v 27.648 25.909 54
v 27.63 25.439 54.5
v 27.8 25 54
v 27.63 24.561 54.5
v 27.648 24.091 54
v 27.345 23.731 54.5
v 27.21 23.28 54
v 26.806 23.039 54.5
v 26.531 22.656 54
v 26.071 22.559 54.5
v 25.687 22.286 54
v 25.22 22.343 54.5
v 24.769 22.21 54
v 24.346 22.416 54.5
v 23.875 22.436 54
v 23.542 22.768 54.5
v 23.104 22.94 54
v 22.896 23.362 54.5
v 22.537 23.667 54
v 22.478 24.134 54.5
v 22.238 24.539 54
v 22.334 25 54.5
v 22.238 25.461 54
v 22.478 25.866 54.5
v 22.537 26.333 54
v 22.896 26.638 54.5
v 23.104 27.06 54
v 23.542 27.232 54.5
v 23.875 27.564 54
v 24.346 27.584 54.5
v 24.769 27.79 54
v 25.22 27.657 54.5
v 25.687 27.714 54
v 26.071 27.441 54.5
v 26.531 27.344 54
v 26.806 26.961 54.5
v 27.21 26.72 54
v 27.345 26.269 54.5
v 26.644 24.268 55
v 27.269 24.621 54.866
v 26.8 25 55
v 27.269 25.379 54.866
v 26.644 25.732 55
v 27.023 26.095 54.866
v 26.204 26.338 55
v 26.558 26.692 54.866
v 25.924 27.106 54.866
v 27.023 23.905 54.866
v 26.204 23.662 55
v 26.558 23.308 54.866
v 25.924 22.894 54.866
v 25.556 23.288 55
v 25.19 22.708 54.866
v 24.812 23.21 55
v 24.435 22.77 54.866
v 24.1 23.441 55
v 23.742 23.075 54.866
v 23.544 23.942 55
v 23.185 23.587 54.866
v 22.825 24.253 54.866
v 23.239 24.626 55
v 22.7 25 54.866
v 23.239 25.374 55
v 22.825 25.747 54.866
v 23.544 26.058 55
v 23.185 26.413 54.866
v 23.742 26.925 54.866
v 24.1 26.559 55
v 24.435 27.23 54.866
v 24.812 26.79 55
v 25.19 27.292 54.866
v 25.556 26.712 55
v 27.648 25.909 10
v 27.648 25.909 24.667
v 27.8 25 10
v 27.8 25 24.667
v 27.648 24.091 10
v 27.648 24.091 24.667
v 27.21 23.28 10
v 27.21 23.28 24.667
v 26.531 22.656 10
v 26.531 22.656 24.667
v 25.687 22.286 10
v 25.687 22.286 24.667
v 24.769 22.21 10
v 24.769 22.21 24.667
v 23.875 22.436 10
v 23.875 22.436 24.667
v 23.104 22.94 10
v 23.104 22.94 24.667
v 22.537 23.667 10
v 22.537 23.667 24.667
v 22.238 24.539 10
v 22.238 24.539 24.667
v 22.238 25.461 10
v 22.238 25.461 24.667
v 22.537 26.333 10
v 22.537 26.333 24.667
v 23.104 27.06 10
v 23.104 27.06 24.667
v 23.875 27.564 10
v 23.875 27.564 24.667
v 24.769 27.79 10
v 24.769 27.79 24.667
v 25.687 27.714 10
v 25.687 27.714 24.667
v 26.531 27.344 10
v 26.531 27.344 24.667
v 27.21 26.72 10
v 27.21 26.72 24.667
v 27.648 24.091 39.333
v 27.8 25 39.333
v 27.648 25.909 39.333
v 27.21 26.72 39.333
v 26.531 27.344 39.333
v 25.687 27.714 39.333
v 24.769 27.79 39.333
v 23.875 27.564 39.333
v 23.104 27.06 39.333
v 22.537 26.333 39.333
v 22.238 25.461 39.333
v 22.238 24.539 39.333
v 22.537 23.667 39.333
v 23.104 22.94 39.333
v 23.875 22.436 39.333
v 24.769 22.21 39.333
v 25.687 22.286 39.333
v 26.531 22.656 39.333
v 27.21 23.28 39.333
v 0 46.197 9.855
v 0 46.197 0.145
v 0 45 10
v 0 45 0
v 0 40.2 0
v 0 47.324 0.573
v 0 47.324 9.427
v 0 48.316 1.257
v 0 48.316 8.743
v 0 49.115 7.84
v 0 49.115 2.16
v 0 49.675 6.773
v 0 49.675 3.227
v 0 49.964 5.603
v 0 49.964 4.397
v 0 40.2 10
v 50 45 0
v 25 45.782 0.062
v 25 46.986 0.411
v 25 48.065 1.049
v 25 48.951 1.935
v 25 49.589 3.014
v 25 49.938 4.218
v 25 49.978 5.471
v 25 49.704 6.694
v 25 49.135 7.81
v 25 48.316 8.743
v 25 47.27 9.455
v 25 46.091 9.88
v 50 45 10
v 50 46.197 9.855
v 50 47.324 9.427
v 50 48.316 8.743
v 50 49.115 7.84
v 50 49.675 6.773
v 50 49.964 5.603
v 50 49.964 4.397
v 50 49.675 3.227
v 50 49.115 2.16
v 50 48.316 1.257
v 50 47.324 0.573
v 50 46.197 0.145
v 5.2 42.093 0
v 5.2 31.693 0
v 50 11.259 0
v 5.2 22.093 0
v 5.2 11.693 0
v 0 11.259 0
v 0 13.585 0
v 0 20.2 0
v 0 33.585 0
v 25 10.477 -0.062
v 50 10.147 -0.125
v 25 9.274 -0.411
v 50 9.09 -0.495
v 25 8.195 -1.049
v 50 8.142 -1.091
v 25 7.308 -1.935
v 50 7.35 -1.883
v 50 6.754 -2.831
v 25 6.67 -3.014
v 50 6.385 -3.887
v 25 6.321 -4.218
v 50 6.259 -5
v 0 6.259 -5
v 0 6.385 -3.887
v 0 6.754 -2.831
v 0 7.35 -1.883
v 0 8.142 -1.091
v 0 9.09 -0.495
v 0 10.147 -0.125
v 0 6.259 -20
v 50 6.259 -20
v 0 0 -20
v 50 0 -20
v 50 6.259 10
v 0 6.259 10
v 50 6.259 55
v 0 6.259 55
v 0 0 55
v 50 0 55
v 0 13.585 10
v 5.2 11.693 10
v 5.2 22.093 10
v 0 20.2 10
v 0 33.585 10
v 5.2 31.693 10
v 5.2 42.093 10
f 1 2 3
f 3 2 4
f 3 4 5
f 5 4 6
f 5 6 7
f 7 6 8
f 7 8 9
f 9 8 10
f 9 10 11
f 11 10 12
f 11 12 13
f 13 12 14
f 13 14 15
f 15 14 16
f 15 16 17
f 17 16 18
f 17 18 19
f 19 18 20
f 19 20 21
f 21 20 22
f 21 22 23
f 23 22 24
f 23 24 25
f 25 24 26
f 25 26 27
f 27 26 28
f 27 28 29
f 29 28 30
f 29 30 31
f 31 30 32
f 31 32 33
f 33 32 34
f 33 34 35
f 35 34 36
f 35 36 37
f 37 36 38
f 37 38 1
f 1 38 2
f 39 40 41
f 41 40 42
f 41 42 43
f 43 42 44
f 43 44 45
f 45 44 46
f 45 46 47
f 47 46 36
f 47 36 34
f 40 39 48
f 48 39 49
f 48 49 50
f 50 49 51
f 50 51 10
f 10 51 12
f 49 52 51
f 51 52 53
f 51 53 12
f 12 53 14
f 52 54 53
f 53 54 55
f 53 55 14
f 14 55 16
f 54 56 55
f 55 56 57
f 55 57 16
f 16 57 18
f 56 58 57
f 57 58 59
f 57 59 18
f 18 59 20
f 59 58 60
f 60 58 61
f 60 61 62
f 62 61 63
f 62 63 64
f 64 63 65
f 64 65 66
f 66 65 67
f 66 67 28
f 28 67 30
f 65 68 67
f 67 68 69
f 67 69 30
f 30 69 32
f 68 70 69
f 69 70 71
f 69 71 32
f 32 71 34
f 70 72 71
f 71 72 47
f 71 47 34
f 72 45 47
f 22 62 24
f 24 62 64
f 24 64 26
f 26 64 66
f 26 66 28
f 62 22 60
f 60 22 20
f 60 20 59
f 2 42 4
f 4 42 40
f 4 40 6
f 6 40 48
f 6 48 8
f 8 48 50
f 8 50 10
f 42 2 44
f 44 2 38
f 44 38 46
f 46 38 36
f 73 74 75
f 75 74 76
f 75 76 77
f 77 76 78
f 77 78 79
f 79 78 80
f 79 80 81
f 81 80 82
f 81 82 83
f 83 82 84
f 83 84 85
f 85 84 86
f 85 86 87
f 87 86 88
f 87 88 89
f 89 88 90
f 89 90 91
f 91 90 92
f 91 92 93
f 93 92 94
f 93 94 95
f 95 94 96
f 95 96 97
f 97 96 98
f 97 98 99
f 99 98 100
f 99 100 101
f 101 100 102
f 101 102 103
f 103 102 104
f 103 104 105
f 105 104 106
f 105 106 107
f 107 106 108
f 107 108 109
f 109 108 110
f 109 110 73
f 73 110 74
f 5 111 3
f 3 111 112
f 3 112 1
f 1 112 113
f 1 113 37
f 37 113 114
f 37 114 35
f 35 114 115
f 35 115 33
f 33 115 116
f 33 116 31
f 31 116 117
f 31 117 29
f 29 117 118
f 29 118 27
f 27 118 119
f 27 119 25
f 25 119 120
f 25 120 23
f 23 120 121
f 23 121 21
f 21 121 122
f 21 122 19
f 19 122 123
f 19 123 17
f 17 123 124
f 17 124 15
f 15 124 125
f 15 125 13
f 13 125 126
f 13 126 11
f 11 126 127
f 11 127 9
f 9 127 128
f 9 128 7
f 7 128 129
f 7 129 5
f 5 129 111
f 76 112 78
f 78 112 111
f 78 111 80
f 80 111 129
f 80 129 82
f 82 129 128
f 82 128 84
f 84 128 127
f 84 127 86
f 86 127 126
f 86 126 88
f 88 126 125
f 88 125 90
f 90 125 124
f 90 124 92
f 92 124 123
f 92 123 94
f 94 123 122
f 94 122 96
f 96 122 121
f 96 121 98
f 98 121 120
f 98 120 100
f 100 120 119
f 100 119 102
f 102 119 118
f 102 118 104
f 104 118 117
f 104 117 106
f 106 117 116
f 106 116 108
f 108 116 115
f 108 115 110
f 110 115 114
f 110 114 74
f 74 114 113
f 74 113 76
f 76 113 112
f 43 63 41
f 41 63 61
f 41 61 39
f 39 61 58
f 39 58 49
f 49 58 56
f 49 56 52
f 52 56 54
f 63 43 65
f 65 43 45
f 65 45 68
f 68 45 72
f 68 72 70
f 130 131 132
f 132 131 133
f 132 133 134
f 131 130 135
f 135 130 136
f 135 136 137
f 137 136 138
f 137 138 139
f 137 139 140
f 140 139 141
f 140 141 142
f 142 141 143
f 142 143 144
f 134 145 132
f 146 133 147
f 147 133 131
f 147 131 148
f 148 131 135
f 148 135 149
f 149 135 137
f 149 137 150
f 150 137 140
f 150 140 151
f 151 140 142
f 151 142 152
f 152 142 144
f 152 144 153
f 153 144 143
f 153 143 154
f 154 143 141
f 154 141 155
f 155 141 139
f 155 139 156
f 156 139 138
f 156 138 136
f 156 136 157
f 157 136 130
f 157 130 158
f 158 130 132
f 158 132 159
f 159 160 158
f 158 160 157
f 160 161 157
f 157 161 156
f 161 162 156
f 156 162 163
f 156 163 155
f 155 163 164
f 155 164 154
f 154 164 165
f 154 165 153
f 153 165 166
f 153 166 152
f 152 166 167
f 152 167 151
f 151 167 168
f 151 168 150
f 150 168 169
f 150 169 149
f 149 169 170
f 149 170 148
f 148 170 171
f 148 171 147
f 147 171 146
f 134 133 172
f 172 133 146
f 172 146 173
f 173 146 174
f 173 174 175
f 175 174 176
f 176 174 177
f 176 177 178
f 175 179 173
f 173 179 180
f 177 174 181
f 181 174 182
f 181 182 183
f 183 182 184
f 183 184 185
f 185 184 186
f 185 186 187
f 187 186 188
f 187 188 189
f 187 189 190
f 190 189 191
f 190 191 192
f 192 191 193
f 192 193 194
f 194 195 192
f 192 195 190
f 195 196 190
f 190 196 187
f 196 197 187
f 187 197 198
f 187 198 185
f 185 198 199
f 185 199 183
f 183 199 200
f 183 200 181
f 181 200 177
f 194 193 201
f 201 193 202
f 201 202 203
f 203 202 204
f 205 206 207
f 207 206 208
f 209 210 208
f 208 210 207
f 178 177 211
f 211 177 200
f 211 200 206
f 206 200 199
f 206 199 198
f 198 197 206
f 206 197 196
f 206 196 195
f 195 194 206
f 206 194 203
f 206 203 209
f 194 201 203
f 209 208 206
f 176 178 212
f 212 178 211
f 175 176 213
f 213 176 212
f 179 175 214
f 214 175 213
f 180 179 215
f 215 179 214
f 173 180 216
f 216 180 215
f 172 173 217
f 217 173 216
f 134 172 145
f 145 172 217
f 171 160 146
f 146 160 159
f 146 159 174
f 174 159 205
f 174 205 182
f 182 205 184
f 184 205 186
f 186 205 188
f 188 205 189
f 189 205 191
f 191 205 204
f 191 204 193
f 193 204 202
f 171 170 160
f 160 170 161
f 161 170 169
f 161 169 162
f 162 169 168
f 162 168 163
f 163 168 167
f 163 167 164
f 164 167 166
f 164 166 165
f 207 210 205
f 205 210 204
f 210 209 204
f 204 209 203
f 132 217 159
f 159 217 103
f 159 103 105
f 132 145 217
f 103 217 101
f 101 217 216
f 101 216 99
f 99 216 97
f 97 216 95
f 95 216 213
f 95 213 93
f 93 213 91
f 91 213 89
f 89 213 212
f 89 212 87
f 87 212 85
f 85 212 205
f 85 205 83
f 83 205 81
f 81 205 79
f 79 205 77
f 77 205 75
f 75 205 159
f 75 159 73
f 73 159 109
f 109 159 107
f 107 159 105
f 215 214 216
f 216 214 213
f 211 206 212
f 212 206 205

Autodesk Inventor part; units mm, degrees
ref_plane "YZ Plane" through (0, 0, 0) normal (1, 0, 0) x (0, 1, 0)
ref_plane "XZ Plane" through (0, 0, 0) normal (0, 1, 0) x (-1, 0, 0)
ref_plane "XY Plane" through (0, 0, 0) normal (0, 0, 1) x (1, 0, 0)
sketch "Sketch1" plane through (0, 0, 0) normal (0, 0, 1) x (1, 0, 0)
  line L0 (0, 0) -> (50, 0)
  line L1 (50, 0) -> (50, 50)
  line L2 (50, 50) -> (0, 50)
  line L3 (0, 13.5853) -> (5.2, 11.6926)
  line L4 (5.2, 11.6926) -> (5.2, 22.0926)
  line L5 (5.2, 22.0926) -> (0, 20.2)
  line L6 (0, 50) -> (0, 20.2)
  line L7 (0, 13.5853) -> (0, 0)
  line L8 (0, 40.2) -> (5.2, 42.0926)
  line L9 (5.2, 42.0926) -> (5.2, 31.6926)
  line L10 (5.2, 31.6926) -> (0, 33.5853)
  dimension "d0" = 50
  dimension "d1" = 50
  dimension "d2" = 50
  dimension "d8" = 10.4
  dimension "d9" = 70
  dimension "d10" = 70
  dimension "d11" = 20.2
  dimension "d12" = 5.2
  dimension "d13" = 5.2
  dimension "d14" = 10.4
  dimension "d15" = 40.2
  dimension "d16" = 70
  dimension "d17" = 70
  dimension "d18" = 6.6147
  dimension "d19" = 6.6147
  dimension "d26" = 13.5853
extrude "Extrusion1" add sketch "Sketch1" along normal blind 10 contours L7 L3 L4 L5 L6 L10 L9 L8 L2 L1 L0
sketch "Sketch2" plane through (0, 0, 10) normal (0, 0, 1) x (1, 0, 0)
  line L0 (0, 13.5853) -> (0, 0) projected
  line L1 (0, 0) -> (50, 0)
  line L2 (50, 0) -> (50, 6.2593)
  line L3 (50, 0) -> (50, 50) projected
  line L4 (0, 0) -> (0, 6.2593)
  line L5 (0, 0) -> (50, 0) projected
  line L6 (0, 6.2593) -> (50, 6.2593)
  circle A0 centre (25, 25) radius 2.8
  dimension "d23" = 5.6
extrude "Extrusion2" add sketch "Sketch2" along normal blind 45
sketch "Sketch3" plane through (0, 0, 0) normal (0, 0, -1) x (-1, 0, 0)
  line L0 (0, 6.2593) -> (-50, 6.2593) projected
  line L1 (0, 6.2593) -> (-50, 6.2593)
  line L2 (0, 0) -> (-50, 0) projected
  line L3 (-50, 6.2593) -> (-50, 0)
  line L4 (-50, 0) -> (0, 0)
  line L5 (0, 6.2593) -> (0, 0) projected
  line L6 (0, 0) -> (0, 6.2593)
extrude "Extrusion3" add sketch "Sketch3" along normal blind 20
fillet "Fillet1" radius 5 1 edges at (25, 6.2593, 0)
fillet "Fillet2" radius 5 1 edges at (25, 50, 0)
fillet "Fillet3" radius 5 1 edges at (25, 50, 10)
fillet "Fillet4" radius 1 1 edges at (22.2, 25, 55)
properties part number "SpoolWinderBase"
